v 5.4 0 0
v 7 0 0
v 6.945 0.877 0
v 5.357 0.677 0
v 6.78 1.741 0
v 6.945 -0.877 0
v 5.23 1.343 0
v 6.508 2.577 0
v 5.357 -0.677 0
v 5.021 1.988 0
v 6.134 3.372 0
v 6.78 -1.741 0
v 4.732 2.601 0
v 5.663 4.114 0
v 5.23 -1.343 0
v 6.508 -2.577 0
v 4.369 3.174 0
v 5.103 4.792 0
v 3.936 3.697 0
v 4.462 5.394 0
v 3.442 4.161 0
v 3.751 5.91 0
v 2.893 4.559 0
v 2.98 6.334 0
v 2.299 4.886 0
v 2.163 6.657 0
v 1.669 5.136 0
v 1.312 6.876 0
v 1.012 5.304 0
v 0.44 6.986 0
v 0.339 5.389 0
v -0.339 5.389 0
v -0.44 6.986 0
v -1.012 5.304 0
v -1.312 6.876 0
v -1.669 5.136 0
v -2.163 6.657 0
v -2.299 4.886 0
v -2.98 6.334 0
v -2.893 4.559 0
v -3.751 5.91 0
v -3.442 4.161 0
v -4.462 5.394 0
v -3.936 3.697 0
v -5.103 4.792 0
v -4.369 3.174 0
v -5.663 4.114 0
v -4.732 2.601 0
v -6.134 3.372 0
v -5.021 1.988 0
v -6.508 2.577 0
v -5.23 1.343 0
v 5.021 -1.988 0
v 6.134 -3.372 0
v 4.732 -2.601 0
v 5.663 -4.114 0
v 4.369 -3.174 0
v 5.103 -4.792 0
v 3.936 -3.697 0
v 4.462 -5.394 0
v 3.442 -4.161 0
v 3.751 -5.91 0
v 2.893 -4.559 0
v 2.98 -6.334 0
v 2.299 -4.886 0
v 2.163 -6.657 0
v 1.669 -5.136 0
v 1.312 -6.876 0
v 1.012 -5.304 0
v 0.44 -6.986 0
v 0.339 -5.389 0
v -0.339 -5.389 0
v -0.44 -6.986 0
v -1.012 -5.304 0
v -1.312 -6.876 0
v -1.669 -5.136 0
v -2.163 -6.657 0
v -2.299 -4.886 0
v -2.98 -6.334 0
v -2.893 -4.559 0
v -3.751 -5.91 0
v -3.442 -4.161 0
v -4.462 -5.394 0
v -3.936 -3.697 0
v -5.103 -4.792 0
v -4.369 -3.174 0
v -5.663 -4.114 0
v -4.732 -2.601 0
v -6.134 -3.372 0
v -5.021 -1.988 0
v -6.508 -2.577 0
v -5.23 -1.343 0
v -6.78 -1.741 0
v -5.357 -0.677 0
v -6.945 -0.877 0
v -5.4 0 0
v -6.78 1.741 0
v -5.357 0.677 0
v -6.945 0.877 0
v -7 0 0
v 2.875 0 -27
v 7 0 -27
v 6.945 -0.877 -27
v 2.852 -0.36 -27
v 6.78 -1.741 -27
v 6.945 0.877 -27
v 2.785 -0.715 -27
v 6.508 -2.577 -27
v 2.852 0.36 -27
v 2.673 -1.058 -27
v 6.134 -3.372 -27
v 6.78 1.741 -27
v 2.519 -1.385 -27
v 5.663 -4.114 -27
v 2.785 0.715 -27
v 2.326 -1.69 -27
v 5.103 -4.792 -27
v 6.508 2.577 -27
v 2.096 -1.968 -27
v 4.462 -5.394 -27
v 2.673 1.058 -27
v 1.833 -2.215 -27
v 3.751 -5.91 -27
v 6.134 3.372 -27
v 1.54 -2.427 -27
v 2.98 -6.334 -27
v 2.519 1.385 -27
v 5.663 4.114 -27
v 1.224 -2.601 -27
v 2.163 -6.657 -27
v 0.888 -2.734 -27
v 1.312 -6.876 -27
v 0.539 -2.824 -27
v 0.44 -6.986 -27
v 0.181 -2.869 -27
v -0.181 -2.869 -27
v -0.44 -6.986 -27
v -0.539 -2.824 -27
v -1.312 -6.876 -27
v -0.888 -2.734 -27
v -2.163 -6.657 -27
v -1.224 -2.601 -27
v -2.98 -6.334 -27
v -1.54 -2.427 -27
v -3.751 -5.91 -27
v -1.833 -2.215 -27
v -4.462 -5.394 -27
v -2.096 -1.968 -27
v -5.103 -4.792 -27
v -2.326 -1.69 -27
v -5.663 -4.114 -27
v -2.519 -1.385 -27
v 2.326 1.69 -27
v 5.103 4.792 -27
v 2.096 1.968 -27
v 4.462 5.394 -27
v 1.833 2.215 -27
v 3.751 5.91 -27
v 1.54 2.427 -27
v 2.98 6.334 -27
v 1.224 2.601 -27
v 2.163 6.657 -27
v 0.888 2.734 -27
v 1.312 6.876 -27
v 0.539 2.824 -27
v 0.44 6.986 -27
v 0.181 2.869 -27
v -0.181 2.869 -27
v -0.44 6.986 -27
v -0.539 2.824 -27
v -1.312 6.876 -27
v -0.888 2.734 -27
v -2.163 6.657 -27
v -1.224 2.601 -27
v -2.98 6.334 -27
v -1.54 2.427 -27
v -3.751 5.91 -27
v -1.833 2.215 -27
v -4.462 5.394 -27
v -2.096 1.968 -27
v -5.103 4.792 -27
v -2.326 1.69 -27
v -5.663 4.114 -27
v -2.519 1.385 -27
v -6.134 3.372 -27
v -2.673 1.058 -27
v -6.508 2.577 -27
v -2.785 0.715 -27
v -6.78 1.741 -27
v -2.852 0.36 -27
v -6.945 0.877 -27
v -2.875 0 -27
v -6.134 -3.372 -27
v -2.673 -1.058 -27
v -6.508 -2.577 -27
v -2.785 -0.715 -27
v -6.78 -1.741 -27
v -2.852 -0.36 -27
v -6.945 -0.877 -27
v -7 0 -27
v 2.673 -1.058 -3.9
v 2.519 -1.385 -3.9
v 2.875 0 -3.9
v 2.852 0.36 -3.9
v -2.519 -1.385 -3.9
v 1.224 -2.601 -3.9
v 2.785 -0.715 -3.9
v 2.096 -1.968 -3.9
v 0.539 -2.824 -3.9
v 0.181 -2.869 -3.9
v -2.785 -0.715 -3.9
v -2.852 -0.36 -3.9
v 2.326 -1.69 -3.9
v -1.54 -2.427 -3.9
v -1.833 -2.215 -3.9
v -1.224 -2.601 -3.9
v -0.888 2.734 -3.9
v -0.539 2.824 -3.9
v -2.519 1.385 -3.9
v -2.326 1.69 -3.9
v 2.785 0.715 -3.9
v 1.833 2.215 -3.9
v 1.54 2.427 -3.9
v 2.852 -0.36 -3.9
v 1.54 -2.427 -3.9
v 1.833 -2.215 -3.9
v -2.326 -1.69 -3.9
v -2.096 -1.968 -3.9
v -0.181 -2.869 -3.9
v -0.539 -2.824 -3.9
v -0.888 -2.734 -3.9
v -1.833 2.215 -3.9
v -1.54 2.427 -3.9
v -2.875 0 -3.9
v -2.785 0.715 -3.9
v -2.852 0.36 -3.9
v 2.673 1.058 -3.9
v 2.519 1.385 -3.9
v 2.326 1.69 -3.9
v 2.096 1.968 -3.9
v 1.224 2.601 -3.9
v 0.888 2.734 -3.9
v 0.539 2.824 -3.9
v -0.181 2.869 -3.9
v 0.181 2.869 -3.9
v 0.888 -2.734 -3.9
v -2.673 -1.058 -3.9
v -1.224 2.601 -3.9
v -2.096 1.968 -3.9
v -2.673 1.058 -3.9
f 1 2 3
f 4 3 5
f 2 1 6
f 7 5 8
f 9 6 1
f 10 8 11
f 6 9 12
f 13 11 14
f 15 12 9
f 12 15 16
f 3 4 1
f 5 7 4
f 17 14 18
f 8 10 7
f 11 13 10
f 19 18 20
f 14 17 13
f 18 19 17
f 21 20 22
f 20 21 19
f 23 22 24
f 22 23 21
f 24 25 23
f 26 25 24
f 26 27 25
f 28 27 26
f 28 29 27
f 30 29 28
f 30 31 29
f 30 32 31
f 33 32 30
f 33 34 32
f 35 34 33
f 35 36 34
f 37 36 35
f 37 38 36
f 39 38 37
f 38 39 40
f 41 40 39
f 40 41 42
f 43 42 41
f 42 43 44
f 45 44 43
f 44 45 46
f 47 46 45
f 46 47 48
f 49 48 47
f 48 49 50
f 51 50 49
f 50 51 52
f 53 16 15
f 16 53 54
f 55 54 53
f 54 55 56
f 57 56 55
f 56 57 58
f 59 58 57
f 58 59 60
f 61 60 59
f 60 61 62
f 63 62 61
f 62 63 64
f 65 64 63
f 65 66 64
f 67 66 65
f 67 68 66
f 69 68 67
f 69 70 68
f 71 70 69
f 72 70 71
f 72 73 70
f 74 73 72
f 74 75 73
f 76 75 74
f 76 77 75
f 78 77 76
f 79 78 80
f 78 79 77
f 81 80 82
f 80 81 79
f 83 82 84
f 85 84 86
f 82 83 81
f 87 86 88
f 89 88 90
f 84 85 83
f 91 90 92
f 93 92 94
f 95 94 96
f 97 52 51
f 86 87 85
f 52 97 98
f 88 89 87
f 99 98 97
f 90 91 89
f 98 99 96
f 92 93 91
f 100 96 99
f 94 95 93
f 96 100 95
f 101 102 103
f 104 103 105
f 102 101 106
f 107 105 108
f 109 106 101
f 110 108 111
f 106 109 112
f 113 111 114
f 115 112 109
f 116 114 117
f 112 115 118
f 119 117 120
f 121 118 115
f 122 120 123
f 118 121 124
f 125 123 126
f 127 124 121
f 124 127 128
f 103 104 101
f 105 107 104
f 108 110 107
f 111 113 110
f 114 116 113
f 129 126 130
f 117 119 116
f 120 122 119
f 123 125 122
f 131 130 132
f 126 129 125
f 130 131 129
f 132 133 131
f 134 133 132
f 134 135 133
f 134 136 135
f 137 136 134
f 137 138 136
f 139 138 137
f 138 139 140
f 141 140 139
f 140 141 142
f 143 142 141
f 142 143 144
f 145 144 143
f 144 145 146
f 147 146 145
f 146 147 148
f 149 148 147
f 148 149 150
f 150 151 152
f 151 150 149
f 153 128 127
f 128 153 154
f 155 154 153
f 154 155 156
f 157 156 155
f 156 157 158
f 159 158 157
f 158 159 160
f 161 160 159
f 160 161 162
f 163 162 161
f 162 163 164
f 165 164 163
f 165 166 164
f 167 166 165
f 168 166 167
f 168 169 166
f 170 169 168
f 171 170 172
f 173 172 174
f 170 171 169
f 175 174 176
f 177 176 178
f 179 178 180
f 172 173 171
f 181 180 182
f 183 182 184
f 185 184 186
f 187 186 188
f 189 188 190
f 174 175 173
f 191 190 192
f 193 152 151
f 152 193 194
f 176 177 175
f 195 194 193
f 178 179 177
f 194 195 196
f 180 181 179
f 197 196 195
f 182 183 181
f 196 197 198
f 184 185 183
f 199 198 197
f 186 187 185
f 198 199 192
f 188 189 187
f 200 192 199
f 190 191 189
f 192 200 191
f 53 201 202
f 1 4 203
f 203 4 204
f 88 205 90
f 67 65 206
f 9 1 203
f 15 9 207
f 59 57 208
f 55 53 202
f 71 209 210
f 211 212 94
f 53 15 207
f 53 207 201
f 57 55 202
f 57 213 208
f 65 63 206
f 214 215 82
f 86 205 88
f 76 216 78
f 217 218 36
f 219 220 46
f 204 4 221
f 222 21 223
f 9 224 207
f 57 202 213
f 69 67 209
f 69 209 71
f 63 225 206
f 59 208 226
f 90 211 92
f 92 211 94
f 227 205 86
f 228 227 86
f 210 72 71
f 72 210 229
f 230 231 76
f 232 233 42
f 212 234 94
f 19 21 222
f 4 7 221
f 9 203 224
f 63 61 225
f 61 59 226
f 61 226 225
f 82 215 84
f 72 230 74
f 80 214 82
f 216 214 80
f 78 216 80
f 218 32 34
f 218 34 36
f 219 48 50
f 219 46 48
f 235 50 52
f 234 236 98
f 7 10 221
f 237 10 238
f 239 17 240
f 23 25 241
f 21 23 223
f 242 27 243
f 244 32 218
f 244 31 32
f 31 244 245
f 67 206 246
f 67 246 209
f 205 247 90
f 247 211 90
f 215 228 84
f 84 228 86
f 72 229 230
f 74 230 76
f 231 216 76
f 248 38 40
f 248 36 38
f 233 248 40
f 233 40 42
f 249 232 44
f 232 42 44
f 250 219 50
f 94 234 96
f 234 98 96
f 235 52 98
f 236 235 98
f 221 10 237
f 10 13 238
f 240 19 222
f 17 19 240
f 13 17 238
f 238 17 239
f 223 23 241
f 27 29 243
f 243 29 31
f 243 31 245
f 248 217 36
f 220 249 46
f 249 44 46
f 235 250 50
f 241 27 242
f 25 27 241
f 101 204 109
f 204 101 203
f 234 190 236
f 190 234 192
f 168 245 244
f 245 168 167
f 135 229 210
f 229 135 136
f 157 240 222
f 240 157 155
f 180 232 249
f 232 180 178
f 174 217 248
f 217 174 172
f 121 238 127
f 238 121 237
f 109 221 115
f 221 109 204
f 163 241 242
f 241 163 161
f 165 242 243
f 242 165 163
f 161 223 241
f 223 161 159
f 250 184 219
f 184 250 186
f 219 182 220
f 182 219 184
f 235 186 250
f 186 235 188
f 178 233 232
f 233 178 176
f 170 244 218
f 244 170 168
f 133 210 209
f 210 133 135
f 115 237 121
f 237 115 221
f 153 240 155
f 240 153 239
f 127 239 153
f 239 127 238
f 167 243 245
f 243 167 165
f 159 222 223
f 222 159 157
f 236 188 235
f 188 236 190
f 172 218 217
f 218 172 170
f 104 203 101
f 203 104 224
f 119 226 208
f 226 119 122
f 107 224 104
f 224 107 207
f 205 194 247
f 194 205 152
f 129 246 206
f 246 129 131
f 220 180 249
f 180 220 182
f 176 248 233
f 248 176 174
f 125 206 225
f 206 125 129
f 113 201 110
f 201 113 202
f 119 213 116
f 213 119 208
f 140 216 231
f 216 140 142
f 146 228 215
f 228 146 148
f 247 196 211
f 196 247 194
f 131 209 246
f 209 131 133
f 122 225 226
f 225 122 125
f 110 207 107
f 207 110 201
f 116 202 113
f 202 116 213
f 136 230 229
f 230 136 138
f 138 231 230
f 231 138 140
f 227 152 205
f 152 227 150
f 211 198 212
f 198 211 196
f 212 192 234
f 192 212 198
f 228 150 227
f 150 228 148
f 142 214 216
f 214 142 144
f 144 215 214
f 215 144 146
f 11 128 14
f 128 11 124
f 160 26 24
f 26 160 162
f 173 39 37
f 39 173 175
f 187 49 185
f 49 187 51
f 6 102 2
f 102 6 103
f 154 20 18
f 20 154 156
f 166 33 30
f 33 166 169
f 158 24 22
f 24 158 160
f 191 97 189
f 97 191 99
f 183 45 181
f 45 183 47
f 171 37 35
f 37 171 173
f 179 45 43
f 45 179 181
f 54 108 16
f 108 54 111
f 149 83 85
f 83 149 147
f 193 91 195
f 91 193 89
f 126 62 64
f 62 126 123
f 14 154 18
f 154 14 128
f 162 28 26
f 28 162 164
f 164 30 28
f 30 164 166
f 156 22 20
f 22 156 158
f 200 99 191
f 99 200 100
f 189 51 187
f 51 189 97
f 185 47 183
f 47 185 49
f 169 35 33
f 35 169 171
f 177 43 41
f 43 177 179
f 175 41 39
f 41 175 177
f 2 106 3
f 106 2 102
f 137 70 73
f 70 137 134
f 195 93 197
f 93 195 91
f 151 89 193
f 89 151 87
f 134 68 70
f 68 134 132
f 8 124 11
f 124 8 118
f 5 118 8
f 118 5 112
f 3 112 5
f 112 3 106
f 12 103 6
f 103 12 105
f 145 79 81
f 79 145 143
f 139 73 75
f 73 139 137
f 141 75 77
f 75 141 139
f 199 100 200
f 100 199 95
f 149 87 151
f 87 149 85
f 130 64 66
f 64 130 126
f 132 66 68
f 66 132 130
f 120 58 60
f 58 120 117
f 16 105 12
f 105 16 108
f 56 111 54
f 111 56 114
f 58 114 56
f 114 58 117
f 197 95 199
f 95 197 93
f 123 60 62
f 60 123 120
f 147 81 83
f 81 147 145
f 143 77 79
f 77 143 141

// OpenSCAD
$fn = 50;


difference() {
	union() {
		translate(v = [0, 0, -27.0000000000]) {
			cylinder(h = 27, r = 7.0000000000);
		}
	}
	union() {
		translate(v = [0, 0, 0]) {
			rotate(a = [0, 0, 0]) {
				difference() {
					union() {
						#translate(v = [0, 0, -27.0000000000]) {
							cylinder(h = 27, r = 2.6000000000);
						}
						#translate(v = [0, 0, -3.9000000000]) {
							cylinder(h = 3.9000000000, r = 7.0000000000, r1 = 2.8750000000, r2 = 5.4000000000);
						}
						#translate(v = [0, 0, -27.0000000000]) {
							cylinder(h = 27, r = 2.8750000000);
						}
						#translate(v = [0, 0, -27.0000000000]) {
							cylinder(h = 27, r = 2.6000000000);
						}
					}
					union();
				}
			}
		}
	}
}
